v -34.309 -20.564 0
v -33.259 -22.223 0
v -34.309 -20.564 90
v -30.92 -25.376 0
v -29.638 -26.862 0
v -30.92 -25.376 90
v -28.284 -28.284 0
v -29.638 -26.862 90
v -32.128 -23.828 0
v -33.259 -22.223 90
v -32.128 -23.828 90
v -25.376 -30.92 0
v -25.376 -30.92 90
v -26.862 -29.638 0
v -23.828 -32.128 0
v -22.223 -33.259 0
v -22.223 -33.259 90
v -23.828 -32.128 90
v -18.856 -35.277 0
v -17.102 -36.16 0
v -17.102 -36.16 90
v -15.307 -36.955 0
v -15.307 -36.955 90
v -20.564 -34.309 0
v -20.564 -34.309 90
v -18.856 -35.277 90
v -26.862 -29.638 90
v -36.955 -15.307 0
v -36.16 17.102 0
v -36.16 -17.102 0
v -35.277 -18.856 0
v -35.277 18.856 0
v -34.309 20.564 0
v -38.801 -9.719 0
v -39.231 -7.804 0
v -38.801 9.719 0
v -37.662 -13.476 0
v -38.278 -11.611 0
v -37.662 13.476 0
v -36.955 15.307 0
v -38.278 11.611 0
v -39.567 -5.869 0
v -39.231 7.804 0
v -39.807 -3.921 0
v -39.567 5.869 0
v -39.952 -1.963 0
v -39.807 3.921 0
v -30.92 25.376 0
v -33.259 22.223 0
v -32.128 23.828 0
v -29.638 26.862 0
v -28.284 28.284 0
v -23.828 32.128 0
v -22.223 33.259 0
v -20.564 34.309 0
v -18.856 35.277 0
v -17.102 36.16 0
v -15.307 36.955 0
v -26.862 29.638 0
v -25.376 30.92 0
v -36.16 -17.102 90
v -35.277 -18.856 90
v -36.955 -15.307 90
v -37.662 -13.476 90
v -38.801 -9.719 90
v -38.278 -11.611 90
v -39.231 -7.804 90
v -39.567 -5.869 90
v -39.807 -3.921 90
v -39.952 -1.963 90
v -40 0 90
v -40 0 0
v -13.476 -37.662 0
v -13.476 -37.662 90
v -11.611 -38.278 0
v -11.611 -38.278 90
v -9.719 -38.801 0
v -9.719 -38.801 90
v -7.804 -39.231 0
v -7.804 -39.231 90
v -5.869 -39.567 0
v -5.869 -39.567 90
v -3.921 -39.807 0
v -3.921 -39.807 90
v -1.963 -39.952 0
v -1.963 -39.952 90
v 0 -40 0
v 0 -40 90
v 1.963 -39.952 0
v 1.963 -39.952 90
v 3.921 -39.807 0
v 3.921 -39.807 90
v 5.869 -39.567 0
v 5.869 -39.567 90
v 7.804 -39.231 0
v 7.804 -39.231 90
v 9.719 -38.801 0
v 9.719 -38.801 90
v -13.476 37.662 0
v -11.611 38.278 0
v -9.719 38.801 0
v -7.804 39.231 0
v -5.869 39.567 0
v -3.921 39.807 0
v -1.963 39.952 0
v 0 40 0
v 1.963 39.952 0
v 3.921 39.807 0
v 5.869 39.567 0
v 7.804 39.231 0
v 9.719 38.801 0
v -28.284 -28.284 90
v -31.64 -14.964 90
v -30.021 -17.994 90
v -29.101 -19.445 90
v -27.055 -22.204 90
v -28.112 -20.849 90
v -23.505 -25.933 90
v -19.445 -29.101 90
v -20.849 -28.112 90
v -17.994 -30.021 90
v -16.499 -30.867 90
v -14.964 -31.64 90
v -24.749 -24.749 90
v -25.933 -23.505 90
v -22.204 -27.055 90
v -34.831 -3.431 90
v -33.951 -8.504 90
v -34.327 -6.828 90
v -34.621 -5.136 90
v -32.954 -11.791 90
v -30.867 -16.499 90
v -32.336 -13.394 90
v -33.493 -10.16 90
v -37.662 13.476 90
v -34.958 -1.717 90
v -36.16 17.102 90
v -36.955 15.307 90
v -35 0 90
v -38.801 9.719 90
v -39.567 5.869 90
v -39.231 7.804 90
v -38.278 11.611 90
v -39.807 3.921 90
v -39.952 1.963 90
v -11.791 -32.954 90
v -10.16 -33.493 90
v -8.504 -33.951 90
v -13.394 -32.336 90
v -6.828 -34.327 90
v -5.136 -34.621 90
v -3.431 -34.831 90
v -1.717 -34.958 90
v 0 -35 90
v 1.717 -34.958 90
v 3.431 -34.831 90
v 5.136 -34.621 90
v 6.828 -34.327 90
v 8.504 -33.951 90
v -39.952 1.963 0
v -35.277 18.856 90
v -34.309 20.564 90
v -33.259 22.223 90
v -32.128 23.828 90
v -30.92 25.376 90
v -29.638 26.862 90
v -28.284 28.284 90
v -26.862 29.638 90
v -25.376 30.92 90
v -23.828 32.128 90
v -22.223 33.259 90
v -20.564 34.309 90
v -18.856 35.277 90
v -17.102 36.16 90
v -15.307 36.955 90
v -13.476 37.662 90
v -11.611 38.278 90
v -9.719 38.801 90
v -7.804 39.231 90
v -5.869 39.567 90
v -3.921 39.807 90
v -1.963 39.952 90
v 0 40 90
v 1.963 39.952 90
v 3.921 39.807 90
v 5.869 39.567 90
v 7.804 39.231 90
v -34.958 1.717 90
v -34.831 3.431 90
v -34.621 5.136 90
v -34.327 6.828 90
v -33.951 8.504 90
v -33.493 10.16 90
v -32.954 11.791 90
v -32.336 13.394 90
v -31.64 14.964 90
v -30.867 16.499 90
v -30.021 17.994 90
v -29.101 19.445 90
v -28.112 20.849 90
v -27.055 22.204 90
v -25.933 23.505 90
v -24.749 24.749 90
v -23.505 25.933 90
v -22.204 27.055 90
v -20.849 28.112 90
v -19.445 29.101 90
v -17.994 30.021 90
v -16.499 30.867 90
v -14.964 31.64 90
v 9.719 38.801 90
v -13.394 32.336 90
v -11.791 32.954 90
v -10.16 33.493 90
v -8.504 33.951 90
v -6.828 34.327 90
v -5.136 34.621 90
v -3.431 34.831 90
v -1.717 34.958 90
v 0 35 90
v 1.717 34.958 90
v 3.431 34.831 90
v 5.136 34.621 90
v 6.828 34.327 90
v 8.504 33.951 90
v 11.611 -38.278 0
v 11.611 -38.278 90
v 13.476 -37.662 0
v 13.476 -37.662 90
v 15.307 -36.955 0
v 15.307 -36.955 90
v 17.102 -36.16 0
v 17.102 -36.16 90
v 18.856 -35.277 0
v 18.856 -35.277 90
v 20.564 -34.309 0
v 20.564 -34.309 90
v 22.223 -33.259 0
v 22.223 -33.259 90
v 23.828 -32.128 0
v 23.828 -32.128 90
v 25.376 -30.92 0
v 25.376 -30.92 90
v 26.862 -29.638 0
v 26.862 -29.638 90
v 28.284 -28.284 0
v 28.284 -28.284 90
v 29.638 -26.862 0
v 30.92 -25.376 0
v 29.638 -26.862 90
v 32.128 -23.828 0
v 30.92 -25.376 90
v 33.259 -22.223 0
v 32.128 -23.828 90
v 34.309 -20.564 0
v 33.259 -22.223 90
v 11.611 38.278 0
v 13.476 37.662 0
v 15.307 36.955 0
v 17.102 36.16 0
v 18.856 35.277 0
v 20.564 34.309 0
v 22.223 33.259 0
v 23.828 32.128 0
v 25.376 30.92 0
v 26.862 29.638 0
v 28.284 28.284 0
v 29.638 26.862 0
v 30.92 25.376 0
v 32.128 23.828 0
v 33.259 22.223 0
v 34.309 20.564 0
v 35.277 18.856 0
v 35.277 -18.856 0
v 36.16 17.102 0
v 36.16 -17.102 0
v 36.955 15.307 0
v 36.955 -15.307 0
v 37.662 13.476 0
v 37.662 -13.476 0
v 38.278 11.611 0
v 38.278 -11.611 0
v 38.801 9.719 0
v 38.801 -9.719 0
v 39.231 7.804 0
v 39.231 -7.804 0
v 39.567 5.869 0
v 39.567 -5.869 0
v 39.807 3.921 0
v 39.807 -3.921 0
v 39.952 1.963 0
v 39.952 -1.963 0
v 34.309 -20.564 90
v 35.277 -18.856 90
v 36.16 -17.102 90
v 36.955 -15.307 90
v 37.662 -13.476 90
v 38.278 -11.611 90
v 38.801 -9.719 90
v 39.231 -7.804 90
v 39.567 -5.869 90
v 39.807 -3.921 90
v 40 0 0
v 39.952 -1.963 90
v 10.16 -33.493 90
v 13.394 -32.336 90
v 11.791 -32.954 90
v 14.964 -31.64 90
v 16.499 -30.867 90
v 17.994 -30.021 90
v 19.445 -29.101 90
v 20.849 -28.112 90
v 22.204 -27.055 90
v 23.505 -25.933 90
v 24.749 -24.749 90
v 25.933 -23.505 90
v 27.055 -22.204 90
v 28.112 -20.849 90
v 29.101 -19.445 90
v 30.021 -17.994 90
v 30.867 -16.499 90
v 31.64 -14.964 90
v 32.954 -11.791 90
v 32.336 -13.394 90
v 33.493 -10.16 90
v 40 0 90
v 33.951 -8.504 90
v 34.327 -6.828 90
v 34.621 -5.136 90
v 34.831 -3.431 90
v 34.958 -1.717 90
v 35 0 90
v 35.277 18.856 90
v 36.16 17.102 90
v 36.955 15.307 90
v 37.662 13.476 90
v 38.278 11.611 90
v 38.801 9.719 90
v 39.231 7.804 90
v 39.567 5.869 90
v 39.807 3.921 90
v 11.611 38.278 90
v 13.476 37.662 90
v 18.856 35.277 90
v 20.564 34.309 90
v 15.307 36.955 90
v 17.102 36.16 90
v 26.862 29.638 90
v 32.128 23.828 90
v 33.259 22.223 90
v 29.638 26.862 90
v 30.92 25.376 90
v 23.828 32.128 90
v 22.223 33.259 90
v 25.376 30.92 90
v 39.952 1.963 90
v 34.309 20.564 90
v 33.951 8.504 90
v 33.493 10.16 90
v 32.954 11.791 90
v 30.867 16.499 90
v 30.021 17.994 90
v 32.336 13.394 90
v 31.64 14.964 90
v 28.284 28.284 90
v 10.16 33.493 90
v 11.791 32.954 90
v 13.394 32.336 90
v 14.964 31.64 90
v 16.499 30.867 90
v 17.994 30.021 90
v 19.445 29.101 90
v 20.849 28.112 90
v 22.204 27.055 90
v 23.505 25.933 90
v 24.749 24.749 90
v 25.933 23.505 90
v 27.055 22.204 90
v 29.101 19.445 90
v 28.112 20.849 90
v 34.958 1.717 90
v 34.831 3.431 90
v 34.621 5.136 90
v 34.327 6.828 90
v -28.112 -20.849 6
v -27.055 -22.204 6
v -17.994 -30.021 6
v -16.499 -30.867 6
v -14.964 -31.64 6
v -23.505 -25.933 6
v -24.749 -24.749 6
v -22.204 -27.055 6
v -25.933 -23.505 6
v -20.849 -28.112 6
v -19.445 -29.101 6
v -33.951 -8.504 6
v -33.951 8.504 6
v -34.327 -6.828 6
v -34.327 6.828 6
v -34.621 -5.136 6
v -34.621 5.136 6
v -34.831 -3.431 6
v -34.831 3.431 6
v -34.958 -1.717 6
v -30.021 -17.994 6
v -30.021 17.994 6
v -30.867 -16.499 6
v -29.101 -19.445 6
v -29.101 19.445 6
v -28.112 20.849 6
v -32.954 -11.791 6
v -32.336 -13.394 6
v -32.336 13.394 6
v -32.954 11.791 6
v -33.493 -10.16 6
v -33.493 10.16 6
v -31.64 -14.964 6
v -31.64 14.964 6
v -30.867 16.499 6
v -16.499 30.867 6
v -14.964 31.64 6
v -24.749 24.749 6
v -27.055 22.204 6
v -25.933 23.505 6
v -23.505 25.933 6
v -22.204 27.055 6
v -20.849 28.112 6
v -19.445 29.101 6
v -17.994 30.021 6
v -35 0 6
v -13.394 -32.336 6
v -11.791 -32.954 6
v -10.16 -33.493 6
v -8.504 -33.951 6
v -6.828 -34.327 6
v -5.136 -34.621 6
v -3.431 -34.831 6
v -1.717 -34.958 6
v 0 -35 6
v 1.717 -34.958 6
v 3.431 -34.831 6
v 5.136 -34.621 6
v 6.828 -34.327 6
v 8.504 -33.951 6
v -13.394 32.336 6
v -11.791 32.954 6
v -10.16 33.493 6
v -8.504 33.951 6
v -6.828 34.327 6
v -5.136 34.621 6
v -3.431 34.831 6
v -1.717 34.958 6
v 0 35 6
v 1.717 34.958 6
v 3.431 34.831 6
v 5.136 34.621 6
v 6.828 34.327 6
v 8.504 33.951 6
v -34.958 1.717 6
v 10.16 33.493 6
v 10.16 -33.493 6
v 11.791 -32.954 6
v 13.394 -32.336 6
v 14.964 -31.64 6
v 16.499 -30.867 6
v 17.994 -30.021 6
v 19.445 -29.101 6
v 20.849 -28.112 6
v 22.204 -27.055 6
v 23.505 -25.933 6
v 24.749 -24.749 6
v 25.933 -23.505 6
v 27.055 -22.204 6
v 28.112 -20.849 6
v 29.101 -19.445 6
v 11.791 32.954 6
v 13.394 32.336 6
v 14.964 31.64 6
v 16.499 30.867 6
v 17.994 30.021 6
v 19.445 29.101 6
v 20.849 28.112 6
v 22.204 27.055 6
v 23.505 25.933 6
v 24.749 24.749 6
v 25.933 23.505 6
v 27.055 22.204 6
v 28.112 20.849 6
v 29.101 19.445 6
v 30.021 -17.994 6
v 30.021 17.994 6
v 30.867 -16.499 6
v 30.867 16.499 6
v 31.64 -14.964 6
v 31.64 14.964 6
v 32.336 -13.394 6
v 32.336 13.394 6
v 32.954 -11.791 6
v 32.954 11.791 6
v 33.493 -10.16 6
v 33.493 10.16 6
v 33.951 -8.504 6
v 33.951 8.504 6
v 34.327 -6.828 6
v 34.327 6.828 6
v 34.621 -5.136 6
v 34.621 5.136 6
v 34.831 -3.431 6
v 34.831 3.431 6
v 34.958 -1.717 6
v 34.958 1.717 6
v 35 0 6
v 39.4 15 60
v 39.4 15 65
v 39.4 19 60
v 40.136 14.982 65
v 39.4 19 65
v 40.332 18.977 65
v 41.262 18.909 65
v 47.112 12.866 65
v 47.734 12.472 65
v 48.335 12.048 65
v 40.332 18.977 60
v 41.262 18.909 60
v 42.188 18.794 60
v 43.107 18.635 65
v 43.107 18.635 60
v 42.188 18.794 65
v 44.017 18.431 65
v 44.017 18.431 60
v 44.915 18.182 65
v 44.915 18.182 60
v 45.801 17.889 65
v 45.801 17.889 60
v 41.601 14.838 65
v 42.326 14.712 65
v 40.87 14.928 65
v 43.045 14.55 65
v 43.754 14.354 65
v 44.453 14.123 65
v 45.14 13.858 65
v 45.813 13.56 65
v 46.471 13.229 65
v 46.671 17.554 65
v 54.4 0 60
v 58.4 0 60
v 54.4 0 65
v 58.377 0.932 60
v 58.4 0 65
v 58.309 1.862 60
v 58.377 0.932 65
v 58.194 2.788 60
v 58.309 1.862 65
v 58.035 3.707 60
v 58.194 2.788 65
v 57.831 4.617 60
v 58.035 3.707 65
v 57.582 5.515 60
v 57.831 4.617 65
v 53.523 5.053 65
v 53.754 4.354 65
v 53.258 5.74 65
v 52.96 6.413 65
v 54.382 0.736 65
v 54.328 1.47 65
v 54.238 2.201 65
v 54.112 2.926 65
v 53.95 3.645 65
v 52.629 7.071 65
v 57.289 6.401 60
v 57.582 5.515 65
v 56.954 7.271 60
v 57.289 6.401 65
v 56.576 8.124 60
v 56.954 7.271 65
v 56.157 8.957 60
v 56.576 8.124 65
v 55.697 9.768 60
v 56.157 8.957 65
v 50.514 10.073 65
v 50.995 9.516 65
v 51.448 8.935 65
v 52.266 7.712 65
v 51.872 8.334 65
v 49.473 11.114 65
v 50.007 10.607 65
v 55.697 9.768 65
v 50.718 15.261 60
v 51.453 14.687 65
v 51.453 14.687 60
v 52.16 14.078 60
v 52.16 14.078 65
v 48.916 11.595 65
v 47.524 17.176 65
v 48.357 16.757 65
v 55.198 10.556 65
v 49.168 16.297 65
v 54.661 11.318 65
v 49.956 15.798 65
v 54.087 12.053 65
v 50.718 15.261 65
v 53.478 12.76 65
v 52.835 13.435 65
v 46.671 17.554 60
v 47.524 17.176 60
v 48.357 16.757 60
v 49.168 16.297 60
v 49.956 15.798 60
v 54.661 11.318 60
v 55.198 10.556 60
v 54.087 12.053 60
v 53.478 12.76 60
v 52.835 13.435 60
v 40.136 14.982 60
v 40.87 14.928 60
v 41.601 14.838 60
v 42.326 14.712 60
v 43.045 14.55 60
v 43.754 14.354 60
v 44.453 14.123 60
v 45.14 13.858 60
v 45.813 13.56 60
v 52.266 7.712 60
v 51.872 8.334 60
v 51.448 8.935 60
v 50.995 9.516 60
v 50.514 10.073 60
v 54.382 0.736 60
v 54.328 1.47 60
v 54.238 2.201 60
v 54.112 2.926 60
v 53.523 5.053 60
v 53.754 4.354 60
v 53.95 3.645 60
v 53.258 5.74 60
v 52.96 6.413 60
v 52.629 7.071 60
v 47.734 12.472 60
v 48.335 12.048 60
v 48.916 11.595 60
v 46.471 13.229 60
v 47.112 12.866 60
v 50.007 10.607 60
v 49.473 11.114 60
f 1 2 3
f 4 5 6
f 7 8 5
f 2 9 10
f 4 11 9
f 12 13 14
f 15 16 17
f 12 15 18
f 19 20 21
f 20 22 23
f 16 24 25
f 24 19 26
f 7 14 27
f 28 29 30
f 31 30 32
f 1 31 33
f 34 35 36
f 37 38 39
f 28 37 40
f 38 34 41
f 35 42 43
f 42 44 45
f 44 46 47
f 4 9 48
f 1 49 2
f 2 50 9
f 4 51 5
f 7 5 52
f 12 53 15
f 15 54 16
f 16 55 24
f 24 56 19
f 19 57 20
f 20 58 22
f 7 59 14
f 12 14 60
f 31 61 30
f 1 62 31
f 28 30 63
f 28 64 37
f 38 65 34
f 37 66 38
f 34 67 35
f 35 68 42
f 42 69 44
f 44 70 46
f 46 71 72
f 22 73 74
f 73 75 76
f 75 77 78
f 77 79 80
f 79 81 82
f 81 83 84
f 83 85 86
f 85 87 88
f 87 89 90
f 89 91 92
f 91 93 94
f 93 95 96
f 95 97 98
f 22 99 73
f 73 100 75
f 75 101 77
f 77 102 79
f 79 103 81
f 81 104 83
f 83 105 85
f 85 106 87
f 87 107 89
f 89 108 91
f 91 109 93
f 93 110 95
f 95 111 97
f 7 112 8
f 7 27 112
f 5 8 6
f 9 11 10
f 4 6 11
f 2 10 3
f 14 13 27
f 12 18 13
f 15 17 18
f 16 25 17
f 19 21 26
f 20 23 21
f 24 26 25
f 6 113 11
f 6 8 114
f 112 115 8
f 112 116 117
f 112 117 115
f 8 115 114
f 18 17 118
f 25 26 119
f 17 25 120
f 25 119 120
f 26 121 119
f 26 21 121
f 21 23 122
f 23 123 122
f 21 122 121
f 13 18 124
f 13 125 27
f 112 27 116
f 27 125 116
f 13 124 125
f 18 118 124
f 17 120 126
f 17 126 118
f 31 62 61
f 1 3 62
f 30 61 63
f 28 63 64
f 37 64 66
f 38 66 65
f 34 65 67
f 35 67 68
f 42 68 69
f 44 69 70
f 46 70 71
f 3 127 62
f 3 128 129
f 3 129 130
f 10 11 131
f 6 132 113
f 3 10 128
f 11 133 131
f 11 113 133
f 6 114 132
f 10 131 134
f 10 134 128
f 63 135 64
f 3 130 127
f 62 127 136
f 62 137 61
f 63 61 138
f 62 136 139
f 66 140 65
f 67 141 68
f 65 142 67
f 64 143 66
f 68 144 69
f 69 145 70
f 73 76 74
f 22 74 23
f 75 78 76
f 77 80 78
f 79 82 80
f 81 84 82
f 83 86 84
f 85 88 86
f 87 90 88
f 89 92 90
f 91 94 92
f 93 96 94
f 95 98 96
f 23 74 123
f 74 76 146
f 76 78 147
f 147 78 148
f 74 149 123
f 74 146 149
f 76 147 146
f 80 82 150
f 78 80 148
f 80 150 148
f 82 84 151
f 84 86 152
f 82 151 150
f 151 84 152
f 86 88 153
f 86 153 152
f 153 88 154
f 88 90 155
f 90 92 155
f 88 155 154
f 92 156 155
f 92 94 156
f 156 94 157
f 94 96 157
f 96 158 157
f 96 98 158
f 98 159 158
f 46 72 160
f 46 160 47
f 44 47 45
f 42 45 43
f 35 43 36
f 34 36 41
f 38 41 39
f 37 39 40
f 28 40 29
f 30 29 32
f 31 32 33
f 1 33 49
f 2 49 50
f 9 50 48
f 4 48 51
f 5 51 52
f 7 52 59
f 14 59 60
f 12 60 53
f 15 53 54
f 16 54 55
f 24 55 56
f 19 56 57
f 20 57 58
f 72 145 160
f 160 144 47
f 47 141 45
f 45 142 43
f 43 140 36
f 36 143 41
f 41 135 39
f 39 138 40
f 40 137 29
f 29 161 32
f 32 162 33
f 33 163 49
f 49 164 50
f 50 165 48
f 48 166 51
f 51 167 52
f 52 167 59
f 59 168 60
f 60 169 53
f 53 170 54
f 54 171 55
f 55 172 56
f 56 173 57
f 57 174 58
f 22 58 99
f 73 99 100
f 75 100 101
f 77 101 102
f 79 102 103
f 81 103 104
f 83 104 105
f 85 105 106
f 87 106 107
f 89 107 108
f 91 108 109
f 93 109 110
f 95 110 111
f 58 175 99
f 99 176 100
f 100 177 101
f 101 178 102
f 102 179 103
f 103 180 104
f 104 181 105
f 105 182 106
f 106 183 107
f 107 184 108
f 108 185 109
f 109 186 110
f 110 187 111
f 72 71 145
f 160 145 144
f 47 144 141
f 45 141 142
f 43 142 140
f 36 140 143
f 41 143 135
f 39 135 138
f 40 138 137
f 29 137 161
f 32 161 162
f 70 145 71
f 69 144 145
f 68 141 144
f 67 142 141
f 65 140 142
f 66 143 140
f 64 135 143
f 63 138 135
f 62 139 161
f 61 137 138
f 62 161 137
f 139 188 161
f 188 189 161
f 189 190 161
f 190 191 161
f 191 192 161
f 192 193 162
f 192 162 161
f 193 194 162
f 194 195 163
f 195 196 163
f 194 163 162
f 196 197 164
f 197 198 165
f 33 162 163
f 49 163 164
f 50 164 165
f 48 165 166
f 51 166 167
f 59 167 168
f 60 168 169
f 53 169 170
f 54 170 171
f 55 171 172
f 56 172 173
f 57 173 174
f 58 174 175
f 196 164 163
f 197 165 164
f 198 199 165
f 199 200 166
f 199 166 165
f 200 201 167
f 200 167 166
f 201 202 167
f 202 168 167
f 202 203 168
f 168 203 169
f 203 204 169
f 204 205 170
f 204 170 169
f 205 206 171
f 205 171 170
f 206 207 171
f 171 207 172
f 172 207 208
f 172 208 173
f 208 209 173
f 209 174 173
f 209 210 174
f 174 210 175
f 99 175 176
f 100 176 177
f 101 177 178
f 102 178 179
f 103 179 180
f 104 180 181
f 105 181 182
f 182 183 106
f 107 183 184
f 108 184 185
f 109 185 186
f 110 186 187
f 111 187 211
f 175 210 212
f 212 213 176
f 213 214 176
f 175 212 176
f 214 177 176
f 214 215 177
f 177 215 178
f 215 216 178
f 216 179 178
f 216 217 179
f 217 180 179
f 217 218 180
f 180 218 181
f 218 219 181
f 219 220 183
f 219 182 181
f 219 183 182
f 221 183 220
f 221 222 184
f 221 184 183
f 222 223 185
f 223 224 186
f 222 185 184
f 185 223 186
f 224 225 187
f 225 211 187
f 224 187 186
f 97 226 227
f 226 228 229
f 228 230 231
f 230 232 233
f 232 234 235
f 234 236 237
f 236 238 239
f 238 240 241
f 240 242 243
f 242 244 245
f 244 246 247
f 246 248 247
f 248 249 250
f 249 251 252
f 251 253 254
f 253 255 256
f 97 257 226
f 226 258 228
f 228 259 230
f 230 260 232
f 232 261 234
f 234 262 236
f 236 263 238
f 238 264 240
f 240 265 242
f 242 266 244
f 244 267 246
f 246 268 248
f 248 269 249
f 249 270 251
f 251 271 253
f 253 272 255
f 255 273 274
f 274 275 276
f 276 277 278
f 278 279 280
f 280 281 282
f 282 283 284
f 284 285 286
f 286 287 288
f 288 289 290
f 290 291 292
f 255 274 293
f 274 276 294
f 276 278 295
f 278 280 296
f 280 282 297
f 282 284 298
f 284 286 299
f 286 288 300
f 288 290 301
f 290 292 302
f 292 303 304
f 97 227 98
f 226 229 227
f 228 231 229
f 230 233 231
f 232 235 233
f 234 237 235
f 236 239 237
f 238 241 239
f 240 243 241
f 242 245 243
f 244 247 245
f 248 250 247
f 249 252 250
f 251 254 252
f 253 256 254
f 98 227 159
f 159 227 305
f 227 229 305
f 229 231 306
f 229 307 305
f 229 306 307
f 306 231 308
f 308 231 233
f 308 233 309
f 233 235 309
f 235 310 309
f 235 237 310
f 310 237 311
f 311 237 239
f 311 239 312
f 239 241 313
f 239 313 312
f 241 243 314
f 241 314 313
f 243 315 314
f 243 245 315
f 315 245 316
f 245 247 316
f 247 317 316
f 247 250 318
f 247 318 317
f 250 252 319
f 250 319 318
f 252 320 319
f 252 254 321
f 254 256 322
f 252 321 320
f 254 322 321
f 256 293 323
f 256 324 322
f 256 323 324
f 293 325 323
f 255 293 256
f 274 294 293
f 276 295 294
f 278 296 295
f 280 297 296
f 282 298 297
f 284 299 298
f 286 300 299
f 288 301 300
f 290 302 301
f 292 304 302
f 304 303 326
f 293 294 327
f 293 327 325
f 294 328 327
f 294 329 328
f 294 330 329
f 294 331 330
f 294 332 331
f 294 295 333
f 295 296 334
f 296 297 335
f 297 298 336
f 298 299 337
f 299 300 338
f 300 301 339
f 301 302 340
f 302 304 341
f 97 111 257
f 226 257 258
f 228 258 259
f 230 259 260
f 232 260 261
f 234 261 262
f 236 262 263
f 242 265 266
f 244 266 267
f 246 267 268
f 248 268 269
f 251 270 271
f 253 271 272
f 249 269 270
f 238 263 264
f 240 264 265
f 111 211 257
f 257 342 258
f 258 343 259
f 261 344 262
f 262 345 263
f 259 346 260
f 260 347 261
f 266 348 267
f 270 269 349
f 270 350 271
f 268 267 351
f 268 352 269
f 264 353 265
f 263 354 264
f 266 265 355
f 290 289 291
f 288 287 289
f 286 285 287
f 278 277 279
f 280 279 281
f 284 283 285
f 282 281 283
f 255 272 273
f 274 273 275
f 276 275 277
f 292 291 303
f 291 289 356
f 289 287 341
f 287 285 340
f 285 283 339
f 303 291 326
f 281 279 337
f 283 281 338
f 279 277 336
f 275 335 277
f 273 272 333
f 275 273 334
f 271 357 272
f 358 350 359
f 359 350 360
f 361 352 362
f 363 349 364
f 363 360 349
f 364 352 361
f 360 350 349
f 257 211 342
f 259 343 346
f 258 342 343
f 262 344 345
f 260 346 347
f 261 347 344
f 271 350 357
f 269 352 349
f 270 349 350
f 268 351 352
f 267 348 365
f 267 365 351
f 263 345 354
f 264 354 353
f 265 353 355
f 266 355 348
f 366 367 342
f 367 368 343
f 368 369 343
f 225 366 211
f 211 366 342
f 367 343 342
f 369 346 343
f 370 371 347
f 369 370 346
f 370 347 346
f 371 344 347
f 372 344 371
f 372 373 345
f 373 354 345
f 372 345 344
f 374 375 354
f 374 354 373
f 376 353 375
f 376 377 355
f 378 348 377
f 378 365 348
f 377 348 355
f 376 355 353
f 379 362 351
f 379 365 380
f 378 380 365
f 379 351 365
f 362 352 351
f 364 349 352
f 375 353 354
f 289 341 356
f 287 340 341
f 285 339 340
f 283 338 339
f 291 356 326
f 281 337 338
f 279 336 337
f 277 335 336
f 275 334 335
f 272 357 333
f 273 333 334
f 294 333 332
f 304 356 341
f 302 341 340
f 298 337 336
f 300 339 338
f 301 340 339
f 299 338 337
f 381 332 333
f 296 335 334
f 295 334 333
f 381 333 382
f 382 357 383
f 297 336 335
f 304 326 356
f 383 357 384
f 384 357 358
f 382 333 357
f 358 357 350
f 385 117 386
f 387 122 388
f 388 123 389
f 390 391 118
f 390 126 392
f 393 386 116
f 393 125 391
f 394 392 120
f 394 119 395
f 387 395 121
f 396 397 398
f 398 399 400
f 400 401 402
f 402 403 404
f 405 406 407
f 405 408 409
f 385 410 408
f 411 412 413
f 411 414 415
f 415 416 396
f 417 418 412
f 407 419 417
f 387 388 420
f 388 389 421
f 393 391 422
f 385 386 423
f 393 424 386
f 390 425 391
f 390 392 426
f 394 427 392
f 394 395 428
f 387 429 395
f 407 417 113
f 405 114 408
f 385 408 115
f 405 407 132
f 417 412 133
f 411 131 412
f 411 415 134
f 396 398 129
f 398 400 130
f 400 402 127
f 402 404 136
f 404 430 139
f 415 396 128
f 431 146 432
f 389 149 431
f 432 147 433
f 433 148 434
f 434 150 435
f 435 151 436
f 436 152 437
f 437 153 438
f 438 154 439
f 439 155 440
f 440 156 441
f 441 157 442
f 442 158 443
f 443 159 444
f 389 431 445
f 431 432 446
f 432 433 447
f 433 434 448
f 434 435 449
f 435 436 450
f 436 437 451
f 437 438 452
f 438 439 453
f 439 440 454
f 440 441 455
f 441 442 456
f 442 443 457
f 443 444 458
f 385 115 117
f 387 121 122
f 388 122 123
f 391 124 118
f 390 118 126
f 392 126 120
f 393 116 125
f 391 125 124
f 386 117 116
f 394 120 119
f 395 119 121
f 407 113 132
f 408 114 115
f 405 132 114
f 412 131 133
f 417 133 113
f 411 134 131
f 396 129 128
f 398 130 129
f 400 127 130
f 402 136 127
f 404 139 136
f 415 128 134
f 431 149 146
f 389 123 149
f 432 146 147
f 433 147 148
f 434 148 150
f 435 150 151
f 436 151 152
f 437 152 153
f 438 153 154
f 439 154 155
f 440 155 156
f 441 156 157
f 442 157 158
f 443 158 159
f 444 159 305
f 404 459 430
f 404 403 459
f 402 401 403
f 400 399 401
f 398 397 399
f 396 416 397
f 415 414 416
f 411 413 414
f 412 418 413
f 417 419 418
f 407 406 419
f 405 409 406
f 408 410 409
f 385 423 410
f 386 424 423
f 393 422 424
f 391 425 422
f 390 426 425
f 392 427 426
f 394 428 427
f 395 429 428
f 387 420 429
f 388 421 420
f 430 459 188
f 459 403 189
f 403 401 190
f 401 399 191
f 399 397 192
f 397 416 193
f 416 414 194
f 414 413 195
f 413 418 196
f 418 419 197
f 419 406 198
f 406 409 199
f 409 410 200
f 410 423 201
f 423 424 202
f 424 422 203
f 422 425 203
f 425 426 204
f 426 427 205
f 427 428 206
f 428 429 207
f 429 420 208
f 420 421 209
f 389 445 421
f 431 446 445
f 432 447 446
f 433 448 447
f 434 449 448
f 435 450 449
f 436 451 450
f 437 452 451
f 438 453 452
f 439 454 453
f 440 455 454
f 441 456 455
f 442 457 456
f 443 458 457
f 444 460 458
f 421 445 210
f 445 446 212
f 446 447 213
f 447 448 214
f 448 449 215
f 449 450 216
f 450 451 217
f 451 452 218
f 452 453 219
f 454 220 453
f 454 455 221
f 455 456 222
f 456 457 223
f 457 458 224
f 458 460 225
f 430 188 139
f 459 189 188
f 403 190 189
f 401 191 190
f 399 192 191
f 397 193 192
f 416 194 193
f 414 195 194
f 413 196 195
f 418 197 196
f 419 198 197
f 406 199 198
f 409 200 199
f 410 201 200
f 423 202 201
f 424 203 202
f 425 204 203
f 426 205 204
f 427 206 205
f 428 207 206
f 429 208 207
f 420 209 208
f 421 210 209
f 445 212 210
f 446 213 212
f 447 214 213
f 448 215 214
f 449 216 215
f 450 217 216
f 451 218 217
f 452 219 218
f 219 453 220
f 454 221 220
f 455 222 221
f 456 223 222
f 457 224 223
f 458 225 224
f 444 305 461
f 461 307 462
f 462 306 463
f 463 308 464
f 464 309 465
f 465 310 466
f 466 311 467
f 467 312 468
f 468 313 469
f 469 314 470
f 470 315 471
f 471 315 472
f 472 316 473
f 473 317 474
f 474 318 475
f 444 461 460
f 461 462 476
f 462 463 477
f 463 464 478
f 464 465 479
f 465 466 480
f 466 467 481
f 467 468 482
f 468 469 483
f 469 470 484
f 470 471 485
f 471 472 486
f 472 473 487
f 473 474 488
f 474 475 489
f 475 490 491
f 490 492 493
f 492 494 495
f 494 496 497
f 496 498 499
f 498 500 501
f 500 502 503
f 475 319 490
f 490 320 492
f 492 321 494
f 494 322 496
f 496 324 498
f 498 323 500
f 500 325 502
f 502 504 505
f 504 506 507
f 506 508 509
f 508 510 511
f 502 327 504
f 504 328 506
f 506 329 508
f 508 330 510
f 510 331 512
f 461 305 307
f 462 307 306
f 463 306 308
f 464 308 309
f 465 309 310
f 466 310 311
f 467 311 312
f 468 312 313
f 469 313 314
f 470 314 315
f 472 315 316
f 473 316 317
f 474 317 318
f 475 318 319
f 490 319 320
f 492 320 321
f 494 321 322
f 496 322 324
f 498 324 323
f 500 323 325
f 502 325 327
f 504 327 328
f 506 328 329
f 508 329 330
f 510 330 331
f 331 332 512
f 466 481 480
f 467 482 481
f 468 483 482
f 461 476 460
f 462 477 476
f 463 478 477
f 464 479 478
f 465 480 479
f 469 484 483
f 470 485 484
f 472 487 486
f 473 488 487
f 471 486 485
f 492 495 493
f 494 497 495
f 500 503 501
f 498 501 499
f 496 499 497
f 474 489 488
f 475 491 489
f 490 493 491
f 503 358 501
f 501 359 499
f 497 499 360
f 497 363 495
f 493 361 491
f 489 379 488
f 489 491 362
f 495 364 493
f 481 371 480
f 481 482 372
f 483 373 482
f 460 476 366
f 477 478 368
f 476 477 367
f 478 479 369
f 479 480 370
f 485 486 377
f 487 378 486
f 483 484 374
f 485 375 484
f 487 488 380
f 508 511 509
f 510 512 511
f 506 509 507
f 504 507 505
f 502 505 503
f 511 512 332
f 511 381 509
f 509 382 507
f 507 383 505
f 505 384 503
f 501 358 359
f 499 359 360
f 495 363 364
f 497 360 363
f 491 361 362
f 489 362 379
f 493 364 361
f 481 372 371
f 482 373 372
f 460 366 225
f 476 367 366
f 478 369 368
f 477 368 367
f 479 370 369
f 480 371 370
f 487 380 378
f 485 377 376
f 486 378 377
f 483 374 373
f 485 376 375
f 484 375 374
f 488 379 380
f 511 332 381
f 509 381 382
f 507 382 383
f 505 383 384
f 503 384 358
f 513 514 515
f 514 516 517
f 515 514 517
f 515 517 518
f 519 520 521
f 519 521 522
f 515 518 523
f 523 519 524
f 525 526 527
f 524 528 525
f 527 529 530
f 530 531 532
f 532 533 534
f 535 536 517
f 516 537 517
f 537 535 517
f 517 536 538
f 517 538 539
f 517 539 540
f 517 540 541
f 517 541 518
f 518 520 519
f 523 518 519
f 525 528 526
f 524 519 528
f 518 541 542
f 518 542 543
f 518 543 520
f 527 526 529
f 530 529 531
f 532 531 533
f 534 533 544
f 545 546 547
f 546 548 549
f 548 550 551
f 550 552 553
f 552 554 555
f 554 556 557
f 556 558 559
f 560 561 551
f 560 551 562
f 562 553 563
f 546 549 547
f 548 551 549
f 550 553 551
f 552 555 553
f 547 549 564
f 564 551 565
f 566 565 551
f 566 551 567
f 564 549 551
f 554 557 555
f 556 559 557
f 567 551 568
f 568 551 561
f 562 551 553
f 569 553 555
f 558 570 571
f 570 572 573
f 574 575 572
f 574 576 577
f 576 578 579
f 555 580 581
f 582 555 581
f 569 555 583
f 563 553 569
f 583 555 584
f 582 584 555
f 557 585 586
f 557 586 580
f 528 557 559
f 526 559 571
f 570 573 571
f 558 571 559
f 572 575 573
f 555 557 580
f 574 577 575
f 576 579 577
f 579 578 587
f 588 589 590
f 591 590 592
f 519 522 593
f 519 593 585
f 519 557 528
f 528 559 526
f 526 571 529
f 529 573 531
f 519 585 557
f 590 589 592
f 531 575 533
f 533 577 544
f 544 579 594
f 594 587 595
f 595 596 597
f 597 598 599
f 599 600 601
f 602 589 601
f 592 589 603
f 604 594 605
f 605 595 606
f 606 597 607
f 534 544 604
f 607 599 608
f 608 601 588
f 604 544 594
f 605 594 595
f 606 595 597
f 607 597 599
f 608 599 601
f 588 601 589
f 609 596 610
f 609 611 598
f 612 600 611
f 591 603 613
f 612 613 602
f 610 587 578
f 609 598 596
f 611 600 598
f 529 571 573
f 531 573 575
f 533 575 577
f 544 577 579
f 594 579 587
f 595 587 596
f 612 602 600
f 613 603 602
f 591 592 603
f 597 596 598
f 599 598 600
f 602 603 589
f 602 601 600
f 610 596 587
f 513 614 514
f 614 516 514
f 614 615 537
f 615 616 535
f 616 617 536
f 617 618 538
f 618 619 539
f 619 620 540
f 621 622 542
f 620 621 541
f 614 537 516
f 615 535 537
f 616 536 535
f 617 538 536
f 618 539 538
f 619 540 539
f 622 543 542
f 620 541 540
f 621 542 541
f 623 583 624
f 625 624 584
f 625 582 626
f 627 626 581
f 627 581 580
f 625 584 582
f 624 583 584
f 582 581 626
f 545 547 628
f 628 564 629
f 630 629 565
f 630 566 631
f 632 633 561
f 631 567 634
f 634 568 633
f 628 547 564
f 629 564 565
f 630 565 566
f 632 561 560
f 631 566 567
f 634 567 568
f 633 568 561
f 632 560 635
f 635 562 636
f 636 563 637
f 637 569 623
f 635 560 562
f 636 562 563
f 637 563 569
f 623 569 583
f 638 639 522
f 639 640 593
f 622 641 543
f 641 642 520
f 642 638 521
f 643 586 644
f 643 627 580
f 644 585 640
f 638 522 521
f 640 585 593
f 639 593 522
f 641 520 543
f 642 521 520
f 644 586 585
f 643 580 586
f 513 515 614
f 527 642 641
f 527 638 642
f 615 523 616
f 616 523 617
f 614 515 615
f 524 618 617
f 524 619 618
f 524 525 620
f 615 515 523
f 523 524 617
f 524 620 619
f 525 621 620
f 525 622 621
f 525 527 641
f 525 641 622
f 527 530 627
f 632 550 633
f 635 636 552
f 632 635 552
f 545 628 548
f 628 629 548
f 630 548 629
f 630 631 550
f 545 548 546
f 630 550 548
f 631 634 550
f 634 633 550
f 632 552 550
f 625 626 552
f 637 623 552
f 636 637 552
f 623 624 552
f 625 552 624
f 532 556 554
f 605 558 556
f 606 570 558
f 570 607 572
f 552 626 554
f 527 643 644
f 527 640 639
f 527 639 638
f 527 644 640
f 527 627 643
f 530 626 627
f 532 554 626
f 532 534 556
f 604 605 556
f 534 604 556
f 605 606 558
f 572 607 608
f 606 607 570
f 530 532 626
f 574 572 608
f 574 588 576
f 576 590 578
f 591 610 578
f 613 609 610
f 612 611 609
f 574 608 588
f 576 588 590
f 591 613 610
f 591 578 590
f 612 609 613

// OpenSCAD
// Mug + +X side D-handle (OpenSCAD)
// Dimensions (mm):
// Mug: outer Ø80, inner Ø70 (wall 5), height 90, bottom thickness 6
// Handle: only on +X side, D-shape (outer half-cylinder with flat inner side),
// inner void ~ 30 (height) x 25 (width in Y). Positioned around middle of mug height.

$fn = 128;

// ---- Mug parameters ----
outer_d = 80;
inner_d = 70;
t_wall  = (outer_d - inner_d)/2; // 5
h_mug   = 90;
t_bottom= 6;

mug_outer_r = outer_d/2;
mug_inner_r = inner_d/2;

// ---- Handle parameters ----
handle_void_w = 25;   // width in Y (requested)
handle_void_h = 30;   // height in Z (requested)

handle_center_z = h_mug/2;

// Handle grip depth along +X (how far it extends from the mug)
handle_depth = 20;

// Handle wall thickness (for D shell)
handle_wall = 4;

// How much extra overlap to avoid manifold gaps
overlap = 0.6;

// For D-shape outer half-circle radius in YZ:
r_outer = handle_void_h/2 + handle_wall;   // gives outer size; inner will be r_inner = r_outer-handle_wall
r_inner = r_outer - handle_wall;

// Mug contact plane for handle:
x_mug_outer = mug_outer_r; // x = +40 touches outer wall

// Small helper: 2D half-circle polygon (Y-Z plane) with flat at Y=0
module half_circle_2d(r=10, yflip=false) {
  // Creates points for a semicircle in +Y direction, from Z=-r..+r, with Y>=0
  pts = [
    for (i=[0:64])
      let(
        a = -90 + i*(180/64),
        y = r*cos(a),   // cos maps -90..+90 -> 0..r..0
        z = r*sin(a)    // sin maps -90..+90 -> -r..+r
      )
      [yflip ? -y : y, z]
  ];
  // Close with flat edge on Y=0 (connect ends)
  polygon(concat(pts, [[0,-r],[0,r]]));
}

// Build D-shaped handle as an extrusion along X (depth).
// D is defined in YZ cross-section:
// - Outer: semicircle (Y>=0) with flat at Y=0
// - Inner void: smaller semicircle (Y>=0) with flat at Y=0
// Then we clip in Y (width) to ~handle_void_w and in Z to ~handle_void_h.
module handle_d() {

  // Cross-section extents:
  // We'll clip the D in Y to control void width.
  // Our semicircle is centered at Y=0; flat at Y=0 implies curved bulges toward +Y.
  // For inner void width ~25, we clip y from 0..(handle_void_w).
  clip_y_max = handle_void_w; // void width along Y

  // For Z we center at handle_center_z with requested height
  z0 = handle_center_z - handle_void_h/2;
  z1 = handle_center_z + handle_void_h/2;

  // Outer half-circle in YZ plane, extruded along +X.
  // We position the flat face at Y=0 and place the semicircle bulge toward +Y.
  difference() {
    // Outer handle (D shell)
    translate([x_mug_outer - overlap, 0, 0])
      linear_extrude(height=handle_depth, center=false)
        translate([0,0,0]) // already in YZ in 2D
          intersection() {
            half_circle_2d(r=r_outer, yflip=false);
            // Clip to achieve target void width/shape (keep only y in [0..clip_y_max])
            // and allow enough thickness above/below due to wall thickness.
            // We'll clip in the 2D stage by intersecting with a rectangle.
            translate([0,0])
              square([clip_y_max, 2*r_outer + 1], center=false);
          }

    // Inner void: subtract a smaller D (so wall remains)
    translate([x_mug_outer - overlap, 0, 0])
      // Move inner void so its Z span is centered correctly
      translate([0,0,0])
      linear_extrude(height=handle_depth + 2*overlap, center=false)
        intersection() {
          // Smaller half-circle
          half_circle_2d(r=r_inner, yflip=false);
          // Clip in Y to target width:
          square([clip_y_max, 2*r_inner + 1], center=false);
        }

    // Finally clip inner void in Z to exact requested height by subtracting a 3D box
    // (easier than precise 2D Z offsets).
    translate([x_mug_outer - overlap - 0.5, 0, z0])
      cube([handle_depth + 2*overlap + 1, clip_y_max, handle_void_h], center=false);
  }
}

// Place handle so its flat face is toward mug center (i.e., at Y=0 plane).
// Requirement: attach only to +X side, and connect to mug outer wall.
// We'll also ensure it doesn't appear on -X.
module mug_with_handle() {
  union() {
    // Mug body: outer cylinder minus inner cavity, leaving bottom thickness.
    difference() {
      cylinder(d=outer_d, h=h_mug, center=false);
      translate([0,0,t_bottom])
        cylinder(d=inner_d, h=h_mug - t_bottom, center=false);
    }

    // Handle: build D handle shell and clip in X to ensure only +X attachment.
    // Position so D is centered at mug's middle height.
    translate([0,0,0]) {
      // The handle_d() is centered around handle_center_z by subtractive Z box,
      // but its outer half-cylinder extrusion exists from Z=-r_outer..+r_outer around origin.
      // So we shift Z of the whole handle to mug center.
      translate([0,0,handle_center_z]) {
        // Our handle_d() expects Z clipping box at absolute z0..z1 in mug coords,
        // so we implement by shifting handle_z logic inside handle_d via absolute z0/z1
        // already computed. Thus set origin accordingly: handle_d includes absolute z0/z1
        // but we are shifting; to avoid double-shift, redefine approach:
        // We'll implement a dedicated shifted handle below (simpler).

      }
    }
  }
}

// Dedicated handle with correct Z placement (no double-shift):
module handle_d_placed() {
  clip_y_max = handle_void_w;
  // Z limits in absolute coordinates of mug
  z0 = handle_center_z - handle_void_h/2;

  // We'll create outer and inner D extrusions centered around Z=0,
  // then shift to z0 appropriately using linear_extrude base at Z=-r_outer.
  // Since half_circle_2d spans Z in [-r_outer, +r_outer] (in 2D), shifting by handle_center_z
  // will put the Z center at handle_center_z.
  difference() {
    // Outer
    translate([x_mug_outer - overlap, 0, handle_center_z])
      linear_extrude(height=handle_depth, center=false)
        intersection() {
          half_circle_2d(r=r_outer, yflip=false);
          square([clip_y_max, 2*r_outer + 1], center=false);
        }

    // Inner: smaller D
    translate([x_mug_outer - overlap, 0, handle_center_z])
      linear_extrude(height=handle_depth + 2*overlap, center=false)
        intersection() {
          half_circle_2d(r=r_inner, yflip=false);
          square([clip_y_max, 2*r_inner + 1], center=false);
        }

    // Ensure inner void height is exactly handle_void_h
    // (Also prevents the inner D from exceeding requested vertical size.)
    translate([x_mug_outer - overlap - 0.5, 0, z0])
      cube([handle_depth + 2*overlap + 1, clip_y_max, handle_void_h], center=false);
  }
}

module mug_with_handle_fixed() {
  union() {
    difference() {
      cylinder(d=outer_d, h=h_mug, center=false);
      translate([0,0,t_bottom])
        cylinder(d=inner_d, h=h_mug - t_bottom, center=false);
    }
    // Add handle only on +X side
    handle_d_placed();
  }
}

mug_with_handle_fixed();
